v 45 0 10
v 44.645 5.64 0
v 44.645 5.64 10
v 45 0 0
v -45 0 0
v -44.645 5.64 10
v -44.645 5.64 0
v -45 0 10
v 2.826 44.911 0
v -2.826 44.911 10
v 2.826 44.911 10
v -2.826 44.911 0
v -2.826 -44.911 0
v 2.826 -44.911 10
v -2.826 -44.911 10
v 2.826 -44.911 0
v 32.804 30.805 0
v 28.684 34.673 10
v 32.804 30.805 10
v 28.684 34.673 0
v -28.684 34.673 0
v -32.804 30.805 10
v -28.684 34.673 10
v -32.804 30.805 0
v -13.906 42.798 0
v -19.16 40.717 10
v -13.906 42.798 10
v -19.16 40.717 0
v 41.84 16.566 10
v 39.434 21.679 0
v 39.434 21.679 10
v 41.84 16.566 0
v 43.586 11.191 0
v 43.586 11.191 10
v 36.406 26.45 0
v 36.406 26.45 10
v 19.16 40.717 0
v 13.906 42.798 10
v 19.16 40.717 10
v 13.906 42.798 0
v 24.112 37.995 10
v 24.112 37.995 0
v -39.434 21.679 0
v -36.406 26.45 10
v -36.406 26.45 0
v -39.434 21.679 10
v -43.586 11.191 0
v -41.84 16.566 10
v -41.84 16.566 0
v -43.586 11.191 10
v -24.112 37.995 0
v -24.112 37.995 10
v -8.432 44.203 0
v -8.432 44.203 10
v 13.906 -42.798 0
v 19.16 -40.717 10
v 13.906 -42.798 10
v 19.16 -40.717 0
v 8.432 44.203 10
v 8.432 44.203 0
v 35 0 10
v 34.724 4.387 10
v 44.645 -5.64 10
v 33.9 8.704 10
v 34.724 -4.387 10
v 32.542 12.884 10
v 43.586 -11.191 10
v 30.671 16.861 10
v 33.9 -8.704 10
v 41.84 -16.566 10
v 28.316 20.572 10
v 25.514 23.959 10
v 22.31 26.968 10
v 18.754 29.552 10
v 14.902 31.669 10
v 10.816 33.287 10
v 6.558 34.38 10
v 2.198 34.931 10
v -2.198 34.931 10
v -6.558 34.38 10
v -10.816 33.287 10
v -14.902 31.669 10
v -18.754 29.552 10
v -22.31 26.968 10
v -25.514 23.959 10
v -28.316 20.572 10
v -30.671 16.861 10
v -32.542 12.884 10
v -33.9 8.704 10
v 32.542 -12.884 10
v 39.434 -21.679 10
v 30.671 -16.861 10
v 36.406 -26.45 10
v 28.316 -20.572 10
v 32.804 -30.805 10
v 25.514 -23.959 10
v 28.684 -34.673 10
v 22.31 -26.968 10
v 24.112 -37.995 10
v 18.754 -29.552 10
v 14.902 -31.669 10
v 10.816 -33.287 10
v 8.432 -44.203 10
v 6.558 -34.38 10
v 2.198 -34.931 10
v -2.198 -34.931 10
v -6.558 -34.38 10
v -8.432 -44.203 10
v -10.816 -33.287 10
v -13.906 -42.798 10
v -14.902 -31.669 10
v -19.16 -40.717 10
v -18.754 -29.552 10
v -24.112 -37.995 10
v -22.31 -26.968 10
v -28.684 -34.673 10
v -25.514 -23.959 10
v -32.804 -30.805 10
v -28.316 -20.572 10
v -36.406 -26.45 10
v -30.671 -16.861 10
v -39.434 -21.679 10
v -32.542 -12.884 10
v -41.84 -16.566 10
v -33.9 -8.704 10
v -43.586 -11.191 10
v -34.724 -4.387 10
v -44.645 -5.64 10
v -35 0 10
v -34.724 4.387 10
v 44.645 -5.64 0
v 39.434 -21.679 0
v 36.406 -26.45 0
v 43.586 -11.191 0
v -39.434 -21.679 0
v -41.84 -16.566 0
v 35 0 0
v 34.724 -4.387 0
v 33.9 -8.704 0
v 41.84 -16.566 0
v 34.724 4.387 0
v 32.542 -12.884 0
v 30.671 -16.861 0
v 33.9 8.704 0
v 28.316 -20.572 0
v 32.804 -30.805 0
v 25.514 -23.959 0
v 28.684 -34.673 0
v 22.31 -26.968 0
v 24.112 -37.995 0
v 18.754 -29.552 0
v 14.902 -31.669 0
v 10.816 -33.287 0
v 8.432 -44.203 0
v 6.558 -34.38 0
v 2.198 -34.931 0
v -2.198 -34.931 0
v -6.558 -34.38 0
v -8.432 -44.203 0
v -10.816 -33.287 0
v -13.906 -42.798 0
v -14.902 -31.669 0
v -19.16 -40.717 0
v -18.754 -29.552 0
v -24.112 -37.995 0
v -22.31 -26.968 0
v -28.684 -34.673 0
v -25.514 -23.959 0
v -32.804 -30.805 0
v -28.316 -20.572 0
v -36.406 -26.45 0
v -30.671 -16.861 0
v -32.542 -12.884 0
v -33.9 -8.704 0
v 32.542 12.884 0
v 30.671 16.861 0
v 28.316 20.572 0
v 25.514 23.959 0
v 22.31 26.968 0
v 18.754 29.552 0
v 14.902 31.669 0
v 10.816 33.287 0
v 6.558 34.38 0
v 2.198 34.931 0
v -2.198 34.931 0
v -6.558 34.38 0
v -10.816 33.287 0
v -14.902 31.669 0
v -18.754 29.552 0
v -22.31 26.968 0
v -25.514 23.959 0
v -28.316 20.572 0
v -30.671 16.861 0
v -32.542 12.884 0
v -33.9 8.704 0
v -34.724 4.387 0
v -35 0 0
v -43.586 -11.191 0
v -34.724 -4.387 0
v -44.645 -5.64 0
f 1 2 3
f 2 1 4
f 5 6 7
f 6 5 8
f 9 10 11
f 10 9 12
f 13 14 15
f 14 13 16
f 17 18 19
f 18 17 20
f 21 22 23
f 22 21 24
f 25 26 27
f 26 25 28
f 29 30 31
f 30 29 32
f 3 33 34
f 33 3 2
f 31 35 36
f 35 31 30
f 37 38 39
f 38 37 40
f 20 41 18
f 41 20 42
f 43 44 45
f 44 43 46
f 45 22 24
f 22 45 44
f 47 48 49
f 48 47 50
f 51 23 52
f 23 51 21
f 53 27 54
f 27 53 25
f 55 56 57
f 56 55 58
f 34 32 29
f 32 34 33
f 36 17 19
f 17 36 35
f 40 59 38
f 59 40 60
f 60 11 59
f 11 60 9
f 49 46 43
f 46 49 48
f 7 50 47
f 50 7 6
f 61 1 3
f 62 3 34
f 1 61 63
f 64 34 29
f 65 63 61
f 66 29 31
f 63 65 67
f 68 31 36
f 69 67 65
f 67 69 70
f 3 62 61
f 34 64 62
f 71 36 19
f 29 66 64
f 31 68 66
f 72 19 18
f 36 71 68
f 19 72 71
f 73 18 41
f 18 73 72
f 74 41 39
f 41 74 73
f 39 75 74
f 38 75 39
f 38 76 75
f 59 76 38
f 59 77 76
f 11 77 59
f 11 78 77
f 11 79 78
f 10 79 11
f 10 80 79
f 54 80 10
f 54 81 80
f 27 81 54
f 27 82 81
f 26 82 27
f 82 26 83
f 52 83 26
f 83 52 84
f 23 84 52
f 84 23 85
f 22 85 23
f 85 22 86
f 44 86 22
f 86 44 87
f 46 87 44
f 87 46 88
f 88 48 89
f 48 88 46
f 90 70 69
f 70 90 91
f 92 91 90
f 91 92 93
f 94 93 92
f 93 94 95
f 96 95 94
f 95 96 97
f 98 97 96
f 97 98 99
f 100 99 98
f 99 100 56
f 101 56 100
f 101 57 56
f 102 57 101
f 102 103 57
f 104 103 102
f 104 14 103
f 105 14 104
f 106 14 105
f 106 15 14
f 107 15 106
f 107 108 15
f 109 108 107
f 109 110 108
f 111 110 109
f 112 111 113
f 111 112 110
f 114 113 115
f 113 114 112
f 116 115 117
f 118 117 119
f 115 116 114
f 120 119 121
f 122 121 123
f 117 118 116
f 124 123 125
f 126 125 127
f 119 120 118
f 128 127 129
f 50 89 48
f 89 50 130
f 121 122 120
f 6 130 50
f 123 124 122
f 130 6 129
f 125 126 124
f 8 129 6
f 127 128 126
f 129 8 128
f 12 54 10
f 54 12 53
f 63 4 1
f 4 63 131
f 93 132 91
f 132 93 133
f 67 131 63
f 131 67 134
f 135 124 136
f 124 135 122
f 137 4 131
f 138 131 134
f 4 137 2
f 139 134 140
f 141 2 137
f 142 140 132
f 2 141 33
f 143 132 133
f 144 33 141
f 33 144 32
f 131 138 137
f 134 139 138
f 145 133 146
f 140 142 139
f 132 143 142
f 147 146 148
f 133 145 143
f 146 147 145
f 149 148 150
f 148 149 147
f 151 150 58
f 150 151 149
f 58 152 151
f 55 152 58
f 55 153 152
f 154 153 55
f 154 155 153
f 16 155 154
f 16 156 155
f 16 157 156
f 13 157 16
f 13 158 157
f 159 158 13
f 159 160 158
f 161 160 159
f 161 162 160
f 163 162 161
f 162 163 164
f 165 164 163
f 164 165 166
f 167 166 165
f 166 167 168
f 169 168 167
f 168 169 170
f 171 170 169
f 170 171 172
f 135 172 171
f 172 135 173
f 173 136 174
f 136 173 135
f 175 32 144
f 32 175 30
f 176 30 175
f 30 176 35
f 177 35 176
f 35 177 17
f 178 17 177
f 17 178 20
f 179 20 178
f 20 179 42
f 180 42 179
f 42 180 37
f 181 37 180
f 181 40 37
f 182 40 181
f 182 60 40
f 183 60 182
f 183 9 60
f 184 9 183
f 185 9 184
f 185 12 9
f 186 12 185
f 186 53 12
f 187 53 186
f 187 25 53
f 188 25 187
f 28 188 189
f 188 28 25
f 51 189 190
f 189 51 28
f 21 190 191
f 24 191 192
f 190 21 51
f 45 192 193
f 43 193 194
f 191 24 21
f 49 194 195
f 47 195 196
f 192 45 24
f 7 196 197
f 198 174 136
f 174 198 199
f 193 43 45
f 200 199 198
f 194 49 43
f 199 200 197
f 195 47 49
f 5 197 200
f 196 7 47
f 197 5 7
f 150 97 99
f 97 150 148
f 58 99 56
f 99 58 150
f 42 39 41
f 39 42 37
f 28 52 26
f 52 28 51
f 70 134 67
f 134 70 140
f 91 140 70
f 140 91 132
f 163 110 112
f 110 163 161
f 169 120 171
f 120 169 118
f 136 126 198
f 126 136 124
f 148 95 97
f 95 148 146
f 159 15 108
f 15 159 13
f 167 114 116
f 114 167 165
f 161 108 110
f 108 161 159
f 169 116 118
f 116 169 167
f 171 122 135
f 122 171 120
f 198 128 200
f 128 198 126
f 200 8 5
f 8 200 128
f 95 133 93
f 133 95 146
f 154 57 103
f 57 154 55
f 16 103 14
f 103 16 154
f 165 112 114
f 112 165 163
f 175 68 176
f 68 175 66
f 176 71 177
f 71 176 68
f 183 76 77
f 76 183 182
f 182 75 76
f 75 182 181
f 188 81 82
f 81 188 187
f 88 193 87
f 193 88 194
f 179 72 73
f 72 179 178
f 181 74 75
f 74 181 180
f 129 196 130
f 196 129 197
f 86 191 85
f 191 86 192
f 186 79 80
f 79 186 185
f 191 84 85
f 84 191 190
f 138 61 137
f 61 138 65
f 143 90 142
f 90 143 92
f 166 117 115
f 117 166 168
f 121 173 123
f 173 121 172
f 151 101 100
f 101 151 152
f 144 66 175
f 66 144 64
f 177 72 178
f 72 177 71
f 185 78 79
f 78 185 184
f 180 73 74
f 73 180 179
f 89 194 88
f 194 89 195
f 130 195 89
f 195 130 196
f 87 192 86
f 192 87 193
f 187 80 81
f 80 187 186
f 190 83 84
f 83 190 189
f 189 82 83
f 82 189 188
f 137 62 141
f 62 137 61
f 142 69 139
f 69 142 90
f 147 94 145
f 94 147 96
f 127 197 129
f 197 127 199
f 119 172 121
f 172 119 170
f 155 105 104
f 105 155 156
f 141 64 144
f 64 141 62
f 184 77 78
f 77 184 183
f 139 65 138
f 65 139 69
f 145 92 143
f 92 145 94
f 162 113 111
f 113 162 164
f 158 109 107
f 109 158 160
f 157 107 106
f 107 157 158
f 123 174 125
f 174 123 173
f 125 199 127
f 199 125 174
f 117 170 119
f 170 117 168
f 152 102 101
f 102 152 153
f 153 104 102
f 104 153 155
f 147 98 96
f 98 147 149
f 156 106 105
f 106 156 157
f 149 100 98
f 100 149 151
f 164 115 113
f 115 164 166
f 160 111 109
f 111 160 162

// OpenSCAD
$fn = 50;


difference() {
	union() {
		translate(v = [0, 0, 0]) {
			rotate(a = [0, 0, 0]) {
				cylinder(h = 10, r = 45.0000000000);
			}
		}
	}
	union() {
		translate(v = [0, 0, 0]) {
			rotate(a = [0, 0, 0]) {
				cylinder(h = 10, r = 35.0000000000);
			}
		}
	}
}
